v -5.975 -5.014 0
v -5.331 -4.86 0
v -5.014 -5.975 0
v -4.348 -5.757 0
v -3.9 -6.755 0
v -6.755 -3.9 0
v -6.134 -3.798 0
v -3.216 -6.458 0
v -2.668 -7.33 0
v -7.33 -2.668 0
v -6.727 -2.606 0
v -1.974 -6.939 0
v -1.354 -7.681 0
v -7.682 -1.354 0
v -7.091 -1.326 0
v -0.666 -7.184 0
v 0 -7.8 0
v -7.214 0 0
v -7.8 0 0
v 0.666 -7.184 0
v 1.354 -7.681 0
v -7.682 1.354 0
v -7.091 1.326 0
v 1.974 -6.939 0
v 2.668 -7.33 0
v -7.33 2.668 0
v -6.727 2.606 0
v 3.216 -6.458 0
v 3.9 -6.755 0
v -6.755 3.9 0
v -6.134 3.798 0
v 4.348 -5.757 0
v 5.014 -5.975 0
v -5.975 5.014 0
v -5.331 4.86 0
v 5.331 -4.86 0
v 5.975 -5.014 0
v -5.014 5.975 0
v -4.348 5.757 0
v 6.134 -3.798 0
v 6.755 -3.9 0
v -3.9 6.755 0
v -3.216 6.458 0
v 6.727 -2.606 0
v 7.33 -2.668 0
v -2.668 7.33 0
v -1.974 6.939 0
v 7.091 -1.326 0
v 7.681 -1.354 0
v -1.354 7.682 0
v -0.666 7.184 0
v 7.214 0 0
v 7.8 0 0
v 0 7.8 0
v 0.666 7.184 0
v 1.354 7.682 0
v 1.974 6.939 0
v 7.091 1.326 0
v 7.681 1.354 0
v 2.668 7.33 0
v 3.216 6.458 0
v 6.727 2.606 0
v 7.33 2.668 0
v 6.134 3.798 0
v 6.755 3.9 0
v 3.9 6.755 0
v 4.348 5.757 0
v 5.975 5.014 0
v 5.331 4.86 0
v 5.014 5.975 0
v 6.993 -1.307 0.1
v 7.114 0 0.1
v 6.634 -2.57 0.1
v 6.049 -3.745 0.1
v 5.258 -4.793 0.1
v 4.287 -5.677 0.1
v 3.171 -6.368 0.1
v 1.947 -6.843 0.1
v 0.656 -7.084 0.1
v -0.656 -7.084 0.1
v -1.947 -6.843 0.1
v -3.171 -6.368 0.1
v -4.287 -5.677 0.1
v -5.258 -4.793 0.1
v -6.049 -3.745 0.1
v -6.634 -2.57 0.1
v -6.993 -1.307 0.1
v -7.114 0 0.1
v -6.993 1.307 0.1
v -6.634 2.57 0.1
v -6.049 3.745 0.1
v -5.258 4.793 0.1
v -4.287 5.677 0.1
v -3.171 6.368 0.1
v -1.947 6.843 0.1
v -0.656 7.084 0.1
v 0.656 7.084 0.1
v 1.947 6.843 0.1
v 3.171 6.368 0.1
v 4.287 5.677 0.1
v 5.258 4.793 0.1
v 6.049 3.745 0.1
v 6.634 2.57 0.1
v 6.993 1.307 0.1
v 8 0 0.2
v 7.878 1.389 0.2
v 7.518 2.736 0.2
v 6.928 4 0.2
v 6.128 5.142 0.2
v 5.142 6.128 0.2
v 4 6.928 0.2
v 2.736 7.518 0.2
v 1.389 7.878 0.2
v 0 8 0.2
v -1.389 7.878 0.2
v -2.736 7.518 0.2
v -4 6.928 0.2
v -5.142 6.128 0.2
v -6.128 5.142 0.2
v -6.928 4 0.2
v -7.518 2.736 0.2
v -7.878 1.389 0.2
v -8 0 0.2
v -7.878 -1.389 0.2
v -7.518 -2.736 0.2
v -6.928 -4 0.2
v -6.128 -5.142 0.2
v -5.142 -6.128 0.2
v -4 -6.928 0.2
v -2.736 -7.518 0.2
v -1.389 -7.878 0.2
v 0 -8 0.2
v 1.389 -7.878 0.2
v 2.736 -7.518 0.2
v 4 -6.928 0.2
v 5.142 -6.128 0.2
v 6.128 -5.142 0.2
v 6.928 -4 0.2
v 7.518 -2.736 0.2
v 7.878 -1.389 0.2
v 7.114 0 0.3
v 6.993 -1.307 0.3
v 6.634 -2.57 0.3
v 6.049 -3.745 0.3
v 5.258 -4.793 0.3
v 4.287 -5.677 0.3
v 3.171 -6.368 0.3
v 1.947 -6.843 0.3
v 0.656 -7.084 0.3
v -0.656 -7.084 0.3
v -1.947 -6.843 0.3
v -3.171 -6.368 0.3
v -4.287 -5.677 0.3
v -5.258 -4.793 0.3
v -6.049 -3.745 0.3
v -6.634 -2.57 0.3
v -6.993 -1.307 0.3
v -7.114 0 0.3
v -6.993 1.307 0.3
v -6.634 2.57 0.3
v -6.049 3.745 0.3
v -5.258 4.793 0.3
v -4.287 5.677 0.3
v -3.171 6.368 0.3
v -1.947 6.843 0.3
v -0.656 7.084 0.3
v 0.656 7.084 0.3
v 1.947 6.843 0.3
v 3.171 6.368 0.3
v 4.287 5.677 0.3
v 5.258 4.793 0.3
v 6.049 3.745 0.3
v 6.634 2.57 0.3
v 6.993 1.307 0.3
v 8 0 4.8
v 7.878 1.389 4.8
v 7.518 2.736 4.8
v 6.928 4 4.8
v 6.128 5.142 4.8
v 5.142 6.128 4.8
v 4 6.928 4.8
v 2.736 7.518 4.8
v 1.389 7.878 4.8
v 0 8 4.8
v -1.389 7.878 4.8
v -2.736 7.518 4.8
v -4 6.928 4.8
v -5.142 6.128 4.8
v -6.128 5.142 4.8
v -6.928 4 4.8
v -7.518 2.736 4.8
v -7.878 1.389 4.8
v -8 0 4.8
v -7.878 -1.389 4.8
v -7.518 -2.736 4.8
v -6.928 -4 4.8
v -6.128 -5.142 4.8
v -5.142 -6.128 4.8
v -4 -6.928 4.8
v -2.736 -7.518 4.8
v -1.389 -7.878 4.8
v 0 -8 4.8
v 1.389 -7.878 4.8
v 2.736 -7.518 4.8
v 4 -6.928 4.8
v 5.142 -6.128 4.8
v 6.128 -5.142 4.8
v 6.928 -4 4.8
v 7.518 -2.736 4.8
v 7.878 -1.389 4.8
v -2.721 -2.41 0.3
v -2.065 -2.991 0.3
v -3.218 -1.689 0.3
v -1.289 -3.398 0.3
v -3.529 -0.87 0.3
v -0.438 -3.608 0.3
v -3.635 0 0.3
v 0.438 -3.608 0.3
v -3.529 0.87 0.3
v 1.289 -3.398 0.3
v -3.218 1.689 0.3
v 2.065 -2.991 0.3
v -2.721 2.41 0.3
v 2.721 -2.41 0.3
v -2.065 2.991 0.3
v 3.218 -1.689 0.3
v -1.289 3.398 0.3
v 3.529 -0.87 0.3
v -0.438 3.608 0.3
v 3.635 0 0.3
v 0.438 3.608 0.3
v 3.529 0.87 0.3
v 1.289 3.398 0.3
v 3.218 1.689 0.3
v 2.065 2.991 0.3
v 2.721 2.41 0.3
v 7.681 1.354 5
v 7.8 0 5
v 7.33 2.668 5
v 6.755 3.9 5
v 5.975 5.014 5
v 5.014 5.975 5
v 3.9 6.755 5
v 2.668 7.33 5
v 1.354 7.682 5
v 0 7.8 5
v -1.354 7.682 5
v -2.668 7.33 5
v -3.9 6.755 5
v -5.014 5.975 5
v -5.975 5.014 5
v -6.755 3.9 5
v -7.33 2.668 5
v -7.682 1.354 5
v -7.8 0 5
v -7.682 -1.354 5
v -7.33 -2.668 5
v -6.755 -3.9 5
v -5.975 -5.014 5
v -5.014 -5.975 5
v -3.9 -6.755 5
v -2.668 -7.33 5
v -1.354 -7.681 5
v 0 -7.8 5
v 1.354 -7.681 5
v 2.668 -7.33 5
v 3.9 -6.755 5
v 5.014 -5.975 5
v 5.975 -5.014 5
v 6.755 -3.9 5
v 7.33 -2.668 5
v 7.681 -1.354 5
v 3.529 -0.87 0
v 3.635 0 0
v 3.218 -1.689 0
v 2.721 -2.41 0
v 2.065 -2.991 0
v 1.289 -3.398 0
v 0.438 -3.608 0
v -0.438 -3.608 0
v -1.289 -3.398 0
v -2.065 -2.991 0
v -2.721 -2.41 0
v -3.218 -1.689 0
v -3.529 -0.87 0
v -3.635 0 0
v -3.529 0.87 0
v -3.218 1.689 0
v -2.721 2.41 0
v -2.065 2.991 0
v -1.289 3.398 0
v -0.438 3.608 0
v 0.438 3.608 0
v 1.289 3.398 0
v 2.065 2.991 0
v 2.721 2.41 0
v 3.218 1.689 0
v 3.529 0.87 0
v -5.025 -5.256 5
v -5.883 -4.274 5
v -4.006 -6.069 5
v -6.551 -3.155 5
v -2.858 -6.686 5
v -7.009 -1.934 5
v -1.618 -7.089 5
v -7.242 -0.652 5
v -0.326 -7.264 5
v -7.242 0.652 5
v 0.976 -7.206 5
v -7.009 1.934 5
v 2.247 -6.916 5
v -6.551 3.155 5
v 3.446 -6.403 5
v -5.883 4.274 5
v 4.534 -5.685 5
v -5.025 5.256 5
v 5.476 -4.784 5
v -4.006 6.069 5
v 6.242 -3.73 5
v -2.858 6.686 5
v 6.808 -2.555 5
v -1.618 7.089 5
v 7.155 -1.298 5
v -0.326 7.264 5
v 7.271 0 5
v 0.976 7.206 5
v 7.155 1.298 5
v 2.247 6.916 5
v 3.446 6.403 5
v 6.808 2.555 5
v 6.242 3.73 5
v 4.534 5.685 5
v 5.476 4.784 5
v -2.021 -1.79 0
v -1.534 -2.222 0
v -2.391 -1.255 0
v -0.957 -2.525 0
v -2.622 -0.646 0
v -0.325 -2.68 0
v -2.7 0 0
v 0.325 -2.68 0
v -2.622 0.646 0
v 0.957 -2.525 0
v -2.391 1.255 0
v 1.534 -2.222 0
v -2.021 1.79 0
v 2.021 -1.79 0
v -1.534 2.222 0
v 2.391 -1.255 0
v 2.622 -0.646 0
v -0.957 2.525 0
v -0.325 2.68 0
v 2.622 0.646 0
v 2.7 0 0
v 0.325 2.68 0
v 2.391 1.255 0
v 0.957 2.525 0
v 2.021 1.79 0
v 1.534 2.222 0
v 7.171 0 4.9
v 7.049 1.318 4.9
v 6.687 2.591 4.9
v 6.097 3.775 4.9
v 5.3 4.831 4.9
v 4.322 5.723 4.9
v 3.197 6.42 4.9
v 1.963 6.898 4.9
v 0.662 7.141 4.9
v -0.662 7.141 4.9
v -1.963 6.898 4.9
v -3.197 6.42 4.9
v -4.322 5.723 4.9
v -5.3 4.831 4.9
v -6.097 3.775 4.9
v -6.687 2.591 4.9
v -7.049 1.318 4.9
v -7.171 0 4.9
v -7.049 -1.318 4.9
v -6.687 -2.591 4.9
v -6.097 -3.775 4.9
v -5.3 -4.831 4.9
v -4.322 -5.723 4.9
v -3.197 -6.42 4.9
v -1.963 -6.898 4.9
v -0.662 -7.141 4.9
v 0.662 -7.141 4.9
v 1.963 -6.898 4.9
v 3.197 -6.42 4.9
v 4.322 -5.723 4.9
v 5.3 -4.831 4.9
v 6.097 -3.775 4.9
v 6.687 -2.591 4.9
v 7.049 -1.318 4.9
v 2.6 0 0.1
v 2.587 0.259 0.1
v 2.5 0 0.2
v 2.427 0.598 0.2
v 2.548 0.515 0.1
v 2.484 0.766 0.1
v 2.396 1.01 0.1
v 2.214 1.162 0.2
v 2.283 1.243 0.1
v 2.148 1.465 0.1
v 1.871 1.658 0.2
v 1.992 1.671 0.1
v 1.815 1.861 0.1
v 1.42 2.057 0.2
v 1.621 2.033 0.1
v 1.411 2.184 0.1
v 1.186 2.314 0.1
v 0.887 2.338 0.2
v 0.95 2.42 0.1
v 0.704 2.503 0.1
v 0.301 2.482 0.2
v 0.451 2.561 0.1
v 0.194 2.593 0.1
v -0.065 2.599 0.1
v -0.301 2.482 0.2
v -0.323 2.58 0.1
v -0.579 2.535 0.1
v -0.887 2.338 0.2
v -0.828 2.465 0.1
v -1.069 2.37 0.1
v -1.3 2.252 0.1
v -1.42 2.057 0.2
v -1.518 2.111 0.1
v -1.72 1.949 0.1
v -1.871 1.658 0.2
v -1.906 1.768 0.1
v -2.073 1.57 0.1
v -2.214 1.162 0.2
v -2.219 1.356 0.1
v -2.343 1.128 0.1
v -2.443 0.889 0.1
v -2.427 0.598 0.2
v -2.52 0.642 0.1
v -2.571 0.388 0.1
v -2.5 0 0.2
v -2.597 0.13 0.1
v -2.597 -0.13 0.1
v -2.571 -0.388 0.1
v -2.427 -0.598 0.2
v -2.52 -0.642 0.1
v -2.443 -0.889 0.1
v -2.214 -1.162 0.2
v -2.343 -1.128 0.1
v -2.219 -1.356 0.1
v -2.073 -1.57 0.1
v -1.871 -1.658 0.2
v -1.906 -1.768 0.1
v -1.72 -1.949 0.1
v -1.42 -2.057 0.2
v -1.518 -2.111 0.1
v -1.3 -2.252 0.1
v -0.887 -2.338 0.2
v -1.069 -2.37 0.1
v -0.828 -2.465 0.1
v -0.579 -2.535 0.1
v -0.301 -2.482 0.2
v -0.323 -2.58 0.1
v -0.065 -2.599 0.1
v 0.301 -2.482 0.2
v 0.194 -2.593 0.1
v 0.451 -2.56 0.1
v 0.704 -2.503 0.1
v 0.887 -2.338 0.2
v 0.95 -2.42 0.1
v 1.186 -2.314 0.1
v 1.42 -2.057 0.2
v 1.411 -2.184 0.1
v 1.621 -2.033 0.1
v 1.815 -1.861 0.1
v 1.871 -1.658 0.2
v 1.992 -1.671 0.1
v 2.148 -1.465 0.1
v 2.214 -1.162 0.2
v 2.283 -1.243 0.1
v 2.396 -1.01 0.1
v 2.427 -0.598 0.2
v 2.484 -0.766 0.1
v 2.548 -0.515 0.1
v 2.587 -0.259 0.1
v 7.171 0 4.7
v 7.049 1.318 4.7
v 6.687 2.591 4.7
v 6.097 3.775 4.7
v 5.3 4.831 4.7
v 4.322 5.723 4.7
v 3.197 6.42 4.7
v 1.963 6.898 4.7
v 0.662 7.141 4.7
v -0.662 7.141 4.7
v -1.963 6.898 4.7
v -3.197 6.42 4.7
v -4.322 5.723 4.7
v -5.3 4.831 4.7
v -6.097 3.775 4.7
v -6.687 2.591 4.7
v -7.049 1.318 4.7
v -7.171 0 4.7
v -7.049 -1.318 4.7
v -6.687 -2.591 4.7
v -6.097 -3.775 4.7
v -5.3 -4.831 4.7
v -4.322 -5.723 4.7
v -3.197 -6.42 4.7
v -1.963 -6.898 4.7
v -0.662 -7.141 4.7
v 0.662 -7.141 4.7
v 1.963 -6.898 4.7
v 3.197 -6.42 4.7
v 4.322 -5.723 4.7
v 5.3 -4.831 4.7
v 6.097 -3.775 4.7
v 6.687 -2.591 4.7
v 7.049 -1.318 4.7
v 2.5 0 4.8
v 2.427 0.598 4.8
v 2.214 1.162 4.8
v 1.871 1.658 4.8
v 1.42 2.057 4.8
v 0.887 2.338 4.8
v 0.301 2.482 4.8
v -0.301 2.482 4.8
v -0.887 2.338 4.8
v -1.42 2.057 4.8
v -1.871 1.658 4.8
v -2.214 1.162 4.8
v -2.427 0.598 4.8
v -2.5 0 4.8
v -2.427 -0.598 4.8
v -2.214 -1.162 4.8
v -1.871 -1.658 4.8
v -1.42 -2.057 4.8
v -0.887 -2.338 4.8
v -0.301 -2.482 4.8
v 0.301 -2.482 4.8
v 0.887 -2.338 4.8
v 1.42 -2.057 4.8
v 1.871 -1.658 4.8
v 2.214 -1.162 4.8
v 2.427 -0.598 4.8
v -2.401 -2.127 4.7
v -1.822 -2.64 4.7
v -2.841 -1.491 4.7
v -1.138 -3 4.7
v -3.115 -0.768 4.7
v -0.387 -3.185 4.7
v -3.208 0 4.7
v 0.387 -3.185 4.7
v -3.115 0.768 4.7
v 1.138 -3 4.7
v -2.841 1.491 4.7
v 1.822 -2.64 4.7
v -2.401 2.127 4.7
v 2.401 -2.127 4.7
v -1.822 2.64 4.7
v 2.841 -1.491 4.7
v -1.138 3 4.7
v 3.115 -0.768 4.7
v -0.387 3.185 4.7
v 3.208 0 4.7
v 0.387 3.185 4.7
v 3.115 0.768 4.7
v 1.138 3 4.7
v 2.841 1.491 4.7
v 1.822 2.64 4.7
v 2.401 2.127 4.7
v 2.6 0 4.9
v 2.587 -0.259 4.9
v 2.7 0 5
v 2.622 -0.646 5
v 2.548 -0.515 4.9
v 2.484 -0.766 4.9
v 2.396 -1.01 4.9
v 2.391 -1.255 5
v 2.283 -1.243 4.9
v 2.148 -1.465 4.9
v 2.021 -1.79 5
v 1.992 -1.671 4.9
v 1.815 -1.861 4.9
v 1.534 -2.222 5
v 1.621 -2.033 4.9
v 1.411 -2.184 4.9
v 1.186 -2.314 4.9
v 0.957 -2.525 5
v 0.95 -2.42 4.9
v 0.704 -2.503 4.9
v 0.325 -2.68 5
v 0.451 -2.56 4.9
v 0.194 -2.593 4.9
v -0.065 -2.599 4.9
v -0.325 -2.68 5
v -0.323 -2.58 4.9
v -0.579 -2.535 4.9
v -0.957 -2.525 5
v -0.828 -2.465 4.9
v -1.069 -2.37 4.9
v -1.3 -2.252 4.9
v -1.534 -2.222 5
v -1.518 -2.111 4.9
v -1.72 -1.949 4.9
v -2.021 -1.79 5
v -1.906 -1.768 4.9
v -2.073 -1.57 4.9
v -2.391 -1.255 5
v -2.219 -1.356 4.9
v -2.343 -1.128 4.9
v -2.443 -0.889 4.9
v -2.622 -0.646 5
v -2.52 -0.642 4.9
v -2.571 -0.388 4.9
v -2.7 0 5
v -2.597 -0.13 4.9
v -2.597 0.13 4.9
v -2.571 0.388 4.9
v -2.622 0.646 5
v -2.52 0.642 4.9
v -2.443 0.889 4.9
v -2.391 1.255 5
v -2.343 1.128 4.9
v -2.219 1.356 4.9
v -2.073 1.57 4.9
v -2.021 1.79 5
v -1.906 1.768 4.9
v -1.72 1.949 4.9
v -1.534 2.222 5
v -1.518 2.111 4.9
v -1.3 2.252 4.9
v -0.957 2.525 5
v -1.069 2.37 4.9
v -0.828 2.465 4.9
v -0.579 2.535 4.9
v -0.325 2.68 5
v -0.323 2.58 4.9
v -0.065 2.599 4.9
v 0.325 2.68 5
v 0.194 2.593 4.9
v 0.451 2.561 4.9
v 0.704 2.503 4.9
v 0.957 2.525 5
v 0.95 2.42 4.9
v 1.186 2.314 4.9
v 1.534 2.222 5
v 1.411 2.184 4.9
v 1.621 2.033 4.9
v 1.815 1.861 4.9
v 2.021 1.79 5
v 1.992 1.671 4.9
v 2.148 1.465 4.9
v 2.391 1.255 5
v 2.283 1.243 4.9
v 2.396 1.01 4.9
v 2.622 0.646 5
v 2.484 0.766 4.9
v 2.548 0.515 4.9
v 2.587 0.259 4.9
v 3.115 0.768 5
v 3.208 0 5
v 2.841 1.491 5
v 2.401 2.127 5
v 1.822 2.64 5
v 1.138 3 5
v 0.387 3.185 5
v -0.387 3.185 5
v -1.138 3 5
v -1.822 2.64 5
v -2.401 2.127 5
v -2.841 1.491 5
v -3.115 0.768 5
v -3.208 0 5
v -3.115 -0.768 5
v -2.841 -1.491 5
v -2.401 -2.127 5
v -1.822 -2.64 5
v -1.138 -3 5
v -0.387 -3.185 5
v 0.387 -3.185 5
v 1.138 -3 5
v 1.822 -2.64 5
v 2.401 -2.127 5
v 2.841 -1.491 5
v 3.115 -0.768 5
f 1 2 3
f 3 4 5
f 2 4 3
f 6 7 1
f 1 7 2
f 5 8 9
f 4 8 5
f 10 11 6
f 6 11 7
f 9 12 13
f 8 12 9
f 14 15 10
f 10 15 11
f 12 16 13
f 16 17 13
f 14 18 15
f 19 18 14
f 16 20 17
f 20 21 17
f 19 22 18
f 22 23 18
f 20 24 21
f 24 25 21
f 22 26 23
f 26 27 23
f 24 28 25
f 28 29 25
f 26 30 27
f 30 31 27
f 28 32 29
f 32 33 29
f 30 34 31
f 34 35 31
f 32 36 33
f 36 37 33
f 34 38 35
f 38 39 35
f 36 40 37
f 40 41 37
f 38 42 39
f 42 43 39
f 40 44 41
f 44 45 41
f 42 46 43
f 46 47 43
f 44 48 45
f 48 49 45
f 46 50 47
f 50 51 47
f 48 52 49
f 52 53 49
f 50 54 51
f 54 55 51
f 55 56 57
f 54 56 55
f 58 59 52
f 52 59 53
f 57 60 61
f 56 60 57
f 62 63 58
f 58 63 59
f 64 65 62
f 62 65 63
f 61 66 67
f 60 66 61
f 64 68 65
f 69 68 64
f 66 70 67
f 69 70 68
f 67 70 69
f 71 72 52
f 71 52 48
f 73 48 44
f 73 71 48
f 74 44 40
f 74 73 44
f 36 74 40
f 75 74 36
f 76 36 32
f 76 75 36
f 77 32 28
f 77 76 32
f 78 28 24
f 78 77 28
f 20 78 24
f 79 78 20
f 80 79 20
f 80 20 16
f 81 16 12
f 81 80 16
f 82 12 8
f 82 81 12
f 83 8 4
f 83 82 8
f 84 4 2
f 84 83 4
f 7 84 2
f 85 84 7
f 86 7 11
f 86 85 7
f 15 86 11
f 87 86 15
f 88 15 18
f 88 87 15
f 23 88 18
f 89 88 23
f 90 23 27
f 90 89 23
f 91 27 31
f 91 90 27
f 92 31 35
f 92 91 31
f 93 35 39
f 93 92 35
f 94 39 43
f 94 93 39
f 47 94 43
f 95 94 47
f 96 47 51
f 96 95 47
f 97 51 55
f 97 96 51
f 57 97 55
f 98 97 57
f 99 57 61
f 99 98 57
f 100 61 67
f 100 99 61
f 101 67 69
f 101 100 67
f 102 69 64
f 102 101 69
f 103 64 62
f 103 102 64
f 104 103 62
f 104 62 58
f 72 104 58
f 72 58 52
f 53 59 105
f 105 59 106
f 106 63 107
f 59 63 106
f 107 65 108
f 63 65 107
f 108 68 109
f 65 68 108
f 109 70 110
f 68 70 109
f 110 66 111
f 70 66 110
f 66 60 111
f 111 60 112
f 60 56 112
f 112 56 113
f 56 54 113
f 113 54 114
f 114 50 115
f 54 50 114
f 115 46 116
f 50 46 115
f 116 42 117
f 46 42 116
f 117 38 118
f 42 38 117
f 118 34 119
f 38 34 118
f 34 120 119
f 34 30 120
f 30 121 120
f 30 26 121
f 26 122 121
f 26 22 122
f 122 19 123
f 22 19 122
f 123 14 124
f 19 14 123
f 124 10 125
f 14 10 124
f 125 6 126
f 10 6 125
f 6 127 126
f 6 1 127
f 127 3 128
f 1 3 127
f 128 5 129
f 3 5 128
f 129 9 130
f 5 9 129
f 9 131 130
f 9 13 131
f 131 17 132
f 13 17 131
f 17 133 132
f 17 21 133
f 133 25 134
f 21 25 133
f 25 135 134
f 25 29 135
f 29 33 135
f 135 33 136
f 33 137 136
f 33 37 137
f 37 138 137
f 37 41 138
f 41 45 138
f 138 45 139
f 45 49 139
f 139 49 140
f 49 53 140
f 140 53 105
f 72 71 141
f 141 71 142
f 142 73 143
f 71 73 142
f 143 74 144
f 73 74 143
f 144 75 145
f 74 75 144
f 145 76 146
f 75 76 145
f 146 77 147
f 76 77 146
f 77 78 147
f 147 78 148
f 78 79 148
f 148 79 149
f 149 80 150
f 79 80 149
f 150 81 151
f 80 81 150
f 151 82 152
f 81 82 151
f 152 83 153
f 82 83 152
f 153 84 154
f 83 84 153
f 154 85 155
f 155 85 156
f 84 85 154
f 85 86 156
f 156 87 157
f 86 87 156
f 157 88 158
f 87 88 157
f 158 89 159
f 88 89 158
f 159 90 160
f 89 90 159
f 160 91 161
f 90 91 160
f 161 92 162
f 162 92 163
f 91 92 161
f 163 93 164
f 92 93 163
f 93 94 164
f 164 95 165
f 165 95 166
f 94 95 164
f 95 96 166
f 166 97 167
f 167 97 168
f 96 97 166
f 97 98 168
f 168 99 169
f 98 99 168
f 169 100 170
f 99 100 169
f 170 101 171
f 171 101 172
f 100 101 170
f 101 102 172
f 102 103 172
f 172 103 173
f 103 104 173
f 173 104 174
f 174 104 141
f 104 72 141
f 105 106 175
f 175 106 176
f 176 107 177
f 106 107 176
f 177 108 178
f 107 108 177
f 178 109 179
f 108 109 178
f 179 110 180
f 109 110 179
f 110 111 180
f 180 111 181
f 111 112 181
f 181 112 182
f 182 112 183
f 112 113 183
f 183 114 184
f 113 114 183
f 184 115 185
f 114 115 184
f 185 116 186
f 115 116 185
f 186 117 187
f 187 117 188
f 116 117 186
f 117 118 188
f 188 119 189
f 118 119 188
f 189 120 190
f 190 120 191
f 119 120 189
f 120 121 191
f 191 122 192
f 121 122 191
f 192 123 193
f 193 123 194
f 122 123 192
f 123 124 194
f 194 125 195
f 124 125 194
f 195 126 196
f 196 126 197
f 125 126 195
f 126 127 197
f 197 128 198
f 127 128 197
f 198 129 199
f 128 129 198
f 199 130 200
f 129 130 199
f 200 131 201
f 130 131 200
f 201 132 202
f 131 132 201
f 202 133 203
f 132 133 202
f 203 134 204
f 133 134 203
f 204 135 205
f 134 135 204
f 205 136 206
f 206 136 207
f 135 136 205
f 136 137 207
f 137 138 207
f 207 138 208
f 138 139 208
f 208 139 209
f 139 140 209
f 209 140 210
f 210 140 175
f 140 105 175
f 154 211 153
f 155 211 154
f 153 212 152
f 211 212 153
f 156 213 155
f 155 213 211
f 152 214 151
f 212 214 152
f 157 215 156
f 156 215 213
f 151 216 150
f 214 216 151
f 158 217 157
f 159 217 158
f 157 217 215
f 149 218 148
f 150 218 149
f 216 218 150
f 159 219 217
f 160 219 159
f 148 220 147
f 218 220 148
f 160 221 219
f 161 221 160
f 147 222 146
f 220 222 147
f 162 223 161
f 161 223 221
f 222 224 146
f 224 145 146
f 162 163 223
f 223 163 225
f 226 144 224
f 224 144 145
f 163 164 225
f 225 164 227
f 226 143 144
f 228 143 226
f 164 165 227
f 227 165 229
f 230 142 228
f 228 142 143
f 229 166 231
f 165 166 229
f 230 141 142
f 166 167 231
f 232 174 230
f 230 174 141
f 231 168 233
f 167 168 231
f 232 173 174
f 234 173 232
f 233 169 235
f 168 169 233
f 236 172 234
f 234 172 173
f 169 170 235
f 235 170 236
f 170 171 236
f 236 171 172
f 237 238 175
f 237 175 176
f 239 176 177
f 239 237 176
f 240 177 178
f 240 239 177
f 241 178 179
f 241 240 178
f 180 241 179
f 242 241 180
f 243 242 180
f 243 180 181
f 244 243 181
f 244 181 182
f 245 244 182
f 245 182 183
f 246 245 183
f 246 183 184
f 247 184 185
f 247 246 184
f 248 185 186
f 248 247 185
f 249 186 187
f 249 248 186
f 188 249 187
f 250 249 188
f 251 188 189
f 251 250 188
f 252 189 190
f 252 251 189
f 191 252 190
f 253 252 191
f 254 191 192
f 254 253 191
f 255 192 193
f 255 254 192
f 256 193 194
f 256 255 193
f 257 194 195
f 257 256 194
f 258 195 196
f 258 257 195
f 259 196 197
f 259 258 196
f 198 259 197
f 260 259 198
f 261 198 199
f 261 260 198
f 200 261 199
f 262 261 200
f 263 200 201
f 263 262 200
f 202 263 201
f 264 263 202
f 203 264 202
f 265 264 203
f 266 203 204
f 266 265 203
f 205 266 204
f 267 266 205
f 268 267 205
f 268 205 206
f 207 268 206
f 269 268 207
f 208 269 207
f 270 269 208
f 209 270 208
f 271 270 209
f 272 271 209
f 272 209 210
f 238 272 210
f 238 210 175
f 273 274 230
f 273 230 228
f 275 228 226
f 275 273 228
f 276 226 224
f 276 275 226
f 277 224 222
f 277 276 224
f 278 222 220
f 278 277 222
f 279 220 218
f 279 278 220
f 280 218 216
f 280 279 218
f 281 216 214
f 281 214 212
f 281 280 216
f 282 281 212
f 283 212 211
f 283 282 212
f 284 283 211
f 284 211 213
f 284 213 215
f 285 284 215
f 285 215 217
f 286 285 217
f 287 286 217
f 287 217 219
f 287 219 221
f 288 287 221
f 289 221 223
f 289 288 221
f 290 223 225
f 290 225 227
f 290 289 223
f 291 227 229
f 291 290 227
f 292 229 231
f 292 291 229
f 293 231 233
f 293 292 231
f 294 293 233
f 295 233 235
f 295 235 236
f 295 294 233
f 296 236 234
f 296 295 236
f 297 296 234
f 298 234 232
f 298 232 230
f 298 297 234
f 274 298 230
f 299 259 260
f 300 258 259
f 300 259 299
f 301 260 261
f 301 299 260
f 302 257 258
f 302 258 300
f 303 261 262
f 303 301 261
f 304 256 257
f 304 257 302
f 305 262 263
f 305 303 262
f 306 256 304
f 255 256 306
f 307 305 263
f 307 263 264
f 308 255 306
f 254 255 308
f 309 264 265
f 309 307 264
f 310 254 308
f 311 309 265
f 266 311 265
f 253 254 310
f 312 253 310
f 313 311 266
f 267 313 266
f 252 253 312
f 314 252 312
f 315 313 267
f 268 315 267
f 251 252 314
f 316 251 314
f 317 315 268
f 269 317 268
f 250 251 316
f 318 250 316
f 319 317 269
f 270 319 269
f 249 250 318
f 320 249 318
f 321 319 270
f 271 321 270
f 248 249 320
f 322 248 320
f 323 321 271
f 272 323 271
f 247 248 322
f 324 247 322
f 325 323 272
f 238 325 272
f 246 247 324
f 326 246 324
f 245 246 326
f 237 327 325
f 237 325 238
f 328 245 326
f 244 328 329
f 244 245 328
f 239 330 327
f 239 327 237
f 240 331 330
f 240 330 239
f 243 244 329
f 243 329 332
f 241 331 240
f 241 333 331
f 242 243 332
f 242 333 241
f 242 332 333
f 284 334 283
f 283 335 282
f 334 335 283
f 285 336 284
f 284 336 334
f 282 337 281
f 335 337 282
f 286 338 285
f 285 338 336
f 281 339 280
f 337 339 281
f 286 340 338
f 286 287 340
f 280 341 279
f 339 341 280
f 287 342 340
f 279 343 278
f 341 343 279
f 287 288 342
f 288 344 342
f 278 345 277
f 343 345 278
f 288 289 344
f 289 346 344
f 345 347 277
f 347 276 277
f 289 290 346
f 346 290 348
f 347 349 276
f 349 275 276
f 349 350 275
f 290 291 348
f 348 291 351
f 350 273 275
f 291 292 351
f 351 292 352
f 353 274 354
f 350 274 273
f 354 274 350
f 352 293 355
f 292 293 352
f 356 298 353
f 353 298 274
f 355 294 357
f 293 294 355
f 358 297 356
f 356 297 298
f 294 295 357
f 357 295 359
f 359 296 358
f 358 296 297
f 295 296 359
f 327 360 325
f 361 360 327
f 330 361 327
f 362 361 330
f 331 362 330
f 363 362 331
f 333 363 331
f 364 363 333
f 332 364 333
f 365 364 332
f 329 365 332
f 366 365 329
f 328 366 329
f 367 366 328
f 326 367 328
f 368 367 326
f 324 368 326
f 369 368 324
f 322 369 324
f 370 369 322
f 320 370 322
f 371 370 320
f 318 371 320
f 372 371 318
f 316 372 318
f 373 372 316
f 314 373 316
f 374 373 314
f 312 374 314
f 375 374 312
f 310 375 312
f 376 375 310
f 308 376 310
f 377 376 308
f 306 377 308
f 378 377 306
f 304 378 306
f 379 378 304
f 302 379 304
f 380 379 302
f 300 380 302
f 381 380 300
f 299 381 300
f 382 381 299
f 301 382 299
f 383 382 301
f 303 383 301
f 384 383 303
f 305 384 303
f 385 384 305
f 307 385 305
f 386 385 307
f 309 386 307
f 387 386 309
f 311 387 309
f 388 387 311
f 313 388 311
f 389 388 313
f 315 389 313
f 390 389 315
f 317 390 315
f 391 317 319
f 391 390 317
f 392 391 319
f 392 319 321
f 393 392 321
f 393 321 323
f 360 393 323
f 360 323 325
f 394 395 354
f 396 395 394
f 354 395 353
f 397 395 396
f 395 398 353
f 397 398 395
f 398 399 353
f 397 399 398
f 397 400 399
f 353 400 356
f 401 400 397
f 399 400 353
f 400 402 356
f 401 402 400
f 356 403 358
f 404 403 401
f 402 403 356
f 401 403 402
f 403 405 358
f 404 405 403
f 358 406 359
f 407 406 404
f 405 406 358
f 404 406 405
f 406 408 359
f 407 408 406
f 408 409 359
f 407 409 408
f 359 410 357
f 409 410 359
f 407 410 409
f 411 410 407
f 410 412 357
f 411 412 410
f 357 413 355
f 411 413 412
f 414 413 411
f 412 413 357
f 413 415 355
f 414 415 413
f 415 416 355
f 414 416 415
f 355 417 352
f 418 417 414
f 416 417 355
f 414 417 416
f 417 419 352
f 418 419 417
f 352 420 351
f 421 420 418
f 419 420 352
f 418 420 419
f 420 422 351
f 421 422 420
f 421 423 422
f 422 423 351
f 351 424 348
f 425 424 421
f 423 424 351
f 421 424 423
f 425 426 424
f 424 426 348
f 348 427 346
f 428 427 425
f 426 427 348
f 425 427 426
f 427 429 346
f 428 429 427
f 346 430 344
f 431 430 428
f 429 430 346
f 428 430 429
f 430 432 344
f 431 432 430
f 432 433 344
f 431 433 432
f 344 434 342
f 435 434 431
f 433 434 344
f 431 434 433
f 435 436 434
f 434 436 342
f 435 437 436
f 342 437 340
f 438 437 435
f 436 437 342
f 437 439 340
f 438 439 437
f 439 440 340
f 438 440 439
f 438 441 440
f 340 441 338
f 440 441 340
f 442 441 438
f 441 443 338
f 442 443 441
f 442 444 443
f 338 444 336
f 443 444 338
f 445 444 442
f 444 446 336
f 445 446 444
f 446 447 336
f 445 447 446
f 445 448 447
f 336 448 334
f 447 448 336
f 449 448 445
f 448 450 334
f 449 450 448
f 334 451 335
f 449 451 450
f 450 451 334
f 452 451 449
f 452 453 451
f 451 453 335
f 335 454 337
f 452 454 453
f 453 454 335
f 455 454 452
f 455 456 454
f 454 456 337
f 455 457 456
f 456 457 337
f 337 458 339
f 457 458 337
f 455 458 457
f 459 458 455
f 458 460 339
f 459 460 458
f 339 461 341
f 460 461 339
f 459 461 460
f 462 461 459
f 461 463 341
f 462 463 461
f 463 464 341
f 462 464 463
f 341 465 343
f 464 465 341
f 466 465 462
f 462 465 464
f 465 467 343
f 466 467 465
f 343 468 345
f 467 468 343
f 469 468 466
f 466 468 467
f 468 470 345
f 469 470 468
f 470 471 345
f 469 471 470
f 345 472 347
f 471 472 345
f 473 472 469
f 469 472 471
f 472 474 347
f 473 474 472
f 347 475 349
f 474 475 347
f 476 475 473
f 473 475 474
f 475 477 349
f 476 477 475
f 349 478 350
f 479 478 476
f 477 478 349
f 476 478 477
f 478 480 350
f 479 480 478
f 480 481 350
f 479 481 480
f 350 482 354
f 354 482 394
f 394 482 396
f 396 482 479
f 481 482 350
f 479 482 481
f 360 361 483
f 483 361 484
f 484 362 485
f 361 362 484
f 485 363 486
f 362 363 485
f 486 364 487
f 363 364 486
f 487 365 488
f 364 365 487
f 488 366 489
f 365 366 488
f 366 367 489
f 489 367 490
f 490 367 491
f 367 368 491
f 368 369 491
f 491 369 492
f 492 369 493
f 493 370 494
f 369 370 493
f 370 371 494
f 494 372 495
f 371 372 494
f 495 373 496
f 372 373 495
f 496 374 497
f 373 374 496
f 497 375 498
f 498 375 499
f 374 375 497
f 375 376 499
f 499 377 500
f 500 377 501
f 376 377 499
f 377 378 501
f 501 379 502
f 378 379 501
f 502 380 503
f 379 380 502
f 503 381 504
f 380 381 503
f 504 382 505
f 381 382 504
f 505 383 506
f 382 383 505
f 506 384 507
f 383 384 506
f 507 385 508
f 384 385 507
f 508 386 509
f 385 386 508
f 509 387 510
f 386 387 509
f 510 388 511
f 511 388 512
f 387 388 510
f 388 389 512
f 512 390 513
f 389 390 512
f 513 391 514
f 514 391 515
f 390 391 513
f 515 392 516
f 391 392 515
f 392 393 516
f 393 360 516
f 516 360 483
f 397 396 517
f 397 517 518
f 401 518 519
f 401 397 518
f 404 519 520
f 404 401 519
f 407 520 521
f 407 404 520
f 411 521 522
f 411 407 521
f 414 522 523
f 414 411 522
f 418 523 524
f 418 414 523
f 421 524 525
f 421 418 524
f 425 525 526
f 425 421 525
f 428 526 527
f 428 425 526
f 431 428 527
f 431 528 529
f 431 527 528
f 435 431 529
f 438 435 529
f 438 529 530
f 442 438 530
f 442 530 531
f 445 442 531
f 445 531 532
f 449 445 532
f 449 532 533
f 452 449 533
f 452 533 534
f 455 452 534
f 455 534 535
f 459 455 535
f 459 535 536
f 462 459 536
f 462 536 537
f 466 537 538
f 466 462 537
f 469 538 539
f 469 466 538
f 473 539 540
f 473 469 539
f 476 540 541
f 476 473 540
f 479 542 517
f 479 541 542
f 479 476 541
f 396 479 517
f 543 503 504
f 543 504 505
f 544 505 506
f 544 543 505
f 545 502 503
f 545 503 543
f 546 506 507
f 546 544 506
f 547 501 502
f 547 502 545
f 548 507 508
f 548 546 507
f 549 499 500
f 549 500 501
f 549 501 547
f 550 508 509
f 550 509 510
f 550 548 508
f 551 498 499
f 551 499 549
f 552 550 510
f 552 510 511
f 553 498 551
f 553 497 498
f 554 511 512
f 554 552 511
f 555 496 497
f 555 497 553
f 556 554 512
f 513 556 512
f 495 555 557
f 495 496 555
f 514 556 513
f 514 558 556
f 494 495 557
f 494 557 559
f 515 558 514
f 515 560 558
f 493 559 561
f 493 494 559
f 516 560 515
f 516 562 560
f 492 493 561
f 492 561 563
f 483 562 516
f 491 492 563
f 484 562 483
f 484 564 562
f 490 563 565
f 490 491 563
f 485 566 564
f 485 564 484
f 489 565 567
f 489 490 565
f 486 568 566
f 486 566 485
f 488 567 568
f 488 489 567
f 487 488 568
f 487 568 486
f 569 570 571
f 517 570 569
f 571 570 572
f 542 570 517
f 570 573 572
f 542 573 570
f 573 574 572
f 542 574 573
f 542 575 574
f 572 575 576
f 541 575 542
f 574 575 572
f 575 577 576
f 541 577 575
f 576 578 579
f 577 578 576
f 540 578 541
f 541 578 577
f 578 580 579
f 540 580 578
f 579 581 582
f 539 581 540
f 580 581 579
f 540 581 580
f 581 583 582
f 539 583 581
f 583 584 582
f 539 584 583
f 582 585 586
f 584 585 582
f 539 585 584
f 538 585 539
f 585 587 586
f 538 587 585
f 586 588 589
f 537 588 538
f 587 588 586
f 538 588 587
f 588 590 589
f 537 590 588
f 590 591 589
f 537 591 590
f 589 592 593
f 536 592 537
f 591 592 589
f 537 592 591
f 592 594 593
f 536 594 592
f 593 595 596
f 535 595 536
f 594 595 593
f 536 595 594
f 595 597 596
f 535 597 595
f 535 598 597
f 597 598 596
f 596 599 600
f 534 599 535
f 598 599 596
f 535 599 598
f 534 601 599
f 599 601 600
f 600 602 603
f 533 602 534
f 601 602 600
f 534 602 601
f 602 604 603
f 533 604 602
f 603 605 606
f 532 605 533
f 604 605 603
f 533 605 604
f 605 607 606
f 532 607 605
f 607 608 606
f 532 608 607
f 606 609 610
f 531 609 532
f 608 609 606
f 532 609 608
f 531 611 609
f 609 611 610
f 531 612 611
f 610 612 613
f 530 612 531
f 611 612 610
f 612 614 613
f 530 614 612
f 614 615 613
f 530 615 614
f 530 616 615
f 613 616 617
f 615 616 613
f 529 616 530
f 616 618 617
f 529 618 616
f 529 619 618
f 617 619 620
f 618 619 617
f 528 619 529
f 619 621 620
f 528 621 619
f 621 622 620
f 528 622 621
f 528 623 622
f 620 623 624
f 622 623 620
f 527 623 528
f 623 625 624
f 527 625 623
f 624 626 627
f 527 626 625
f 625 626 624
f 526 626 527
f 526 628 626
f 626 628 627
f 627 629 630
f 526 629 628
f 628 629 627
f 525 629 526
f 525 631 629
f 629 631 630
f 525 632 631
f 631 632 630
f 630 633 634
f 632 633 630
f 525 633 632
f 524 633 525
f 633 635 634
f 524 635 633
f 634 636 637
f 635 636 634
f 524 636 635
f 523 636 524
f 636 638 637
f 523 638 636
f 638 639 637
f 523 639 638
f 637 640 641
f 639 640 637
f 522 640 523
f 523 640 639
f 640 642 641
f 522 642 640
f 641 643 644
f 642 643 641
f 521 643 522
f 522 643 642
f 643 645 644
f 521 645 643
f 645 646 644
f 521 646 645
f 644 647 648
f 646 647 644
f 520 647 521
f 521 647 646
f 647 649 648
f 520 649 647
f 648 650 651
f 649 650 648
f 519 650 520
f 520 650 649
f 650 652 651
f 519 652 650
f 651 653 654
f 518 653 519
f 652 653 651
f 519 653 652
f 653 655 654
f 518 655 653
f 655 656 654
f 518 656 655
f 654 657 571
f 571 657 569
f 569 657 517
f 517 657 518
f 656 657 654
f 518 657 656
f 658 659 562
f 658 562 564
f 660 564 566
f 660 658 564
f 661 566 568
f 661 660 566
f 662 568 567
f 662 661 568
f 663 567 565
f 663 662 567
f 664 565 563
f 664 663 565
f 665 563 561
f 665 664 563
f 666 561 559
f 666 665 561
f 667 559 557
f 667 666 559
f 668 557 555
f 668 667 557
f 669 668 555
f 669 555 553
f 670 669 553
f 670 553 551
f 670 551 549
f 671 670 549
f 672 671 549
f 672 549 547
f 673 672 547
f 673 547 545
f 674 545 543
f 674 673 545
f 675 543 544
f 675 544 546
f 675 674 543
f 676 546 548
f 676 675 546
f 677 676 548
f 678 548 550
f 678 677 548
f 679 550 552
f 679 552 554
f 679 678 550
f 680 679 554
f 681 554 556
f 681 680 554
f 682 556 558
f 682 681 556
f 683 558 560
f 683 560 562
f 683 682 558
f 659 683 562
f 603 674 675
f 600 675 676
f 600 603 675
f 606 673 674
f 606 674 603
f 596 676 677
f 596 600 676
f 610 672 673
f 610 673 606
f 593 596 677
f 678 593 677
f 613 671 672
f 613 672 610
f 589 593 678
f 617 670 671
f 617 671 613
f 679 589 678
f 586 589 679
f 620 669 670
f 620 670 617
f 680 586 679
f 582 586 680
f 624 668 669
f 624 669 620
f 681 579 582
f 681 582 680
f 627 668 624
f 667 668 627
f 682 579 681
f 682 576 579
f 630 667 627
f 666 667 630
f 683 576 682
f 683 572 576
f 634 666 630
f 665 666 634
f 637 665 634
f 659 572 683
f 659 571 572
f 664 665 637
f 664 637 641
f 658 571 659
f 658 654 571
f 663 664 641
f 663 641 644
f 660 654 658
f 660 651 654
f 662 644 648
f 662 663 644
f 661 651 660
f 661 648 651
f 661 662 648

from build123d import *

# Parameters (mm, degrees)
CYLINDER_R        = 8
CYLINDER_DEPTH    = 5
CYLINDER001_R     = 2.5
CYLINDER001_DEPTH = 10
CHAMFER_SIZE      = 0.2
SKETCH_R          = 7.171484
SKETCH_R_2        = 3.208205
POCKET_DEPTH      = 0.3
SKETCH001_R       = 7.114293
SKETCH001_R_2     = 3.634589
POCKET001_DEPTH   = 0.3
CHAMFER001_SIZE   = 0.1


with BuildPart() as part:
    # Cylinder → Cylinder (join)
    with BuildSketch(Plane.XY):
        Circle(CYLINDER_R)
    extrude(amount=CYLINDER_DEPTH)

    # Cylinder001 → Cylinder001 (cut)
    with BuildSketch(Plane.XY):
        Circle(CYLINDER001_R)
    extrude(amount=CYLINDER001_DEPTH, mode=Mode.SUBTRACT)

    # Chamfer
    chamfer_edges = [part.edges().sort_by_distance(p)[0] for p in [
        (-8, 0, 5),
        (-8, 0, 0),
        (-2.5, 0, 5),
        (-2.5, 0, 0),
    ]]
    chamfer(chamfer_edges, length=CHAMFER_SIZE)

    # Sketch (on Face5 of Chamfer) → Pocket (cut)
    with BuildSketch(Plane.XY.offset(5)):
        Circle(SKETCH_R)
        Circle(SKETCH_R_2, mode=Mode.SUBTRACT)
    extrude(amount=-POCKET_DEPTH, mode=Mode.SUBTRACT)

    # Sketch001 (on Face4 of Pocket) → Pocket001 (cut)
    with BuildSketch(Plane(origin=(0, 0, 0), x_dir=(1, 0, 0), z_dir=(0, 0, -1))):
        Circle(SKETCH001_R)
        Circle(SKETCH001_R_2, mode=Mode.SUBTRACT)
    extrude(amount=-POCKET001_DEPTH, mode=Mode.SUBTRACT)

    # Chamfer001
    chamfer001_edges = [part.edges().sort_by_distance(p)[0] for p in [
        (-7.171484, 0, 5),
        (-7.114293, 0, 0),
    ]]
    chamfer(chamfer001_edges, length=CHAMFER001_SIZE)


solid = part.part
